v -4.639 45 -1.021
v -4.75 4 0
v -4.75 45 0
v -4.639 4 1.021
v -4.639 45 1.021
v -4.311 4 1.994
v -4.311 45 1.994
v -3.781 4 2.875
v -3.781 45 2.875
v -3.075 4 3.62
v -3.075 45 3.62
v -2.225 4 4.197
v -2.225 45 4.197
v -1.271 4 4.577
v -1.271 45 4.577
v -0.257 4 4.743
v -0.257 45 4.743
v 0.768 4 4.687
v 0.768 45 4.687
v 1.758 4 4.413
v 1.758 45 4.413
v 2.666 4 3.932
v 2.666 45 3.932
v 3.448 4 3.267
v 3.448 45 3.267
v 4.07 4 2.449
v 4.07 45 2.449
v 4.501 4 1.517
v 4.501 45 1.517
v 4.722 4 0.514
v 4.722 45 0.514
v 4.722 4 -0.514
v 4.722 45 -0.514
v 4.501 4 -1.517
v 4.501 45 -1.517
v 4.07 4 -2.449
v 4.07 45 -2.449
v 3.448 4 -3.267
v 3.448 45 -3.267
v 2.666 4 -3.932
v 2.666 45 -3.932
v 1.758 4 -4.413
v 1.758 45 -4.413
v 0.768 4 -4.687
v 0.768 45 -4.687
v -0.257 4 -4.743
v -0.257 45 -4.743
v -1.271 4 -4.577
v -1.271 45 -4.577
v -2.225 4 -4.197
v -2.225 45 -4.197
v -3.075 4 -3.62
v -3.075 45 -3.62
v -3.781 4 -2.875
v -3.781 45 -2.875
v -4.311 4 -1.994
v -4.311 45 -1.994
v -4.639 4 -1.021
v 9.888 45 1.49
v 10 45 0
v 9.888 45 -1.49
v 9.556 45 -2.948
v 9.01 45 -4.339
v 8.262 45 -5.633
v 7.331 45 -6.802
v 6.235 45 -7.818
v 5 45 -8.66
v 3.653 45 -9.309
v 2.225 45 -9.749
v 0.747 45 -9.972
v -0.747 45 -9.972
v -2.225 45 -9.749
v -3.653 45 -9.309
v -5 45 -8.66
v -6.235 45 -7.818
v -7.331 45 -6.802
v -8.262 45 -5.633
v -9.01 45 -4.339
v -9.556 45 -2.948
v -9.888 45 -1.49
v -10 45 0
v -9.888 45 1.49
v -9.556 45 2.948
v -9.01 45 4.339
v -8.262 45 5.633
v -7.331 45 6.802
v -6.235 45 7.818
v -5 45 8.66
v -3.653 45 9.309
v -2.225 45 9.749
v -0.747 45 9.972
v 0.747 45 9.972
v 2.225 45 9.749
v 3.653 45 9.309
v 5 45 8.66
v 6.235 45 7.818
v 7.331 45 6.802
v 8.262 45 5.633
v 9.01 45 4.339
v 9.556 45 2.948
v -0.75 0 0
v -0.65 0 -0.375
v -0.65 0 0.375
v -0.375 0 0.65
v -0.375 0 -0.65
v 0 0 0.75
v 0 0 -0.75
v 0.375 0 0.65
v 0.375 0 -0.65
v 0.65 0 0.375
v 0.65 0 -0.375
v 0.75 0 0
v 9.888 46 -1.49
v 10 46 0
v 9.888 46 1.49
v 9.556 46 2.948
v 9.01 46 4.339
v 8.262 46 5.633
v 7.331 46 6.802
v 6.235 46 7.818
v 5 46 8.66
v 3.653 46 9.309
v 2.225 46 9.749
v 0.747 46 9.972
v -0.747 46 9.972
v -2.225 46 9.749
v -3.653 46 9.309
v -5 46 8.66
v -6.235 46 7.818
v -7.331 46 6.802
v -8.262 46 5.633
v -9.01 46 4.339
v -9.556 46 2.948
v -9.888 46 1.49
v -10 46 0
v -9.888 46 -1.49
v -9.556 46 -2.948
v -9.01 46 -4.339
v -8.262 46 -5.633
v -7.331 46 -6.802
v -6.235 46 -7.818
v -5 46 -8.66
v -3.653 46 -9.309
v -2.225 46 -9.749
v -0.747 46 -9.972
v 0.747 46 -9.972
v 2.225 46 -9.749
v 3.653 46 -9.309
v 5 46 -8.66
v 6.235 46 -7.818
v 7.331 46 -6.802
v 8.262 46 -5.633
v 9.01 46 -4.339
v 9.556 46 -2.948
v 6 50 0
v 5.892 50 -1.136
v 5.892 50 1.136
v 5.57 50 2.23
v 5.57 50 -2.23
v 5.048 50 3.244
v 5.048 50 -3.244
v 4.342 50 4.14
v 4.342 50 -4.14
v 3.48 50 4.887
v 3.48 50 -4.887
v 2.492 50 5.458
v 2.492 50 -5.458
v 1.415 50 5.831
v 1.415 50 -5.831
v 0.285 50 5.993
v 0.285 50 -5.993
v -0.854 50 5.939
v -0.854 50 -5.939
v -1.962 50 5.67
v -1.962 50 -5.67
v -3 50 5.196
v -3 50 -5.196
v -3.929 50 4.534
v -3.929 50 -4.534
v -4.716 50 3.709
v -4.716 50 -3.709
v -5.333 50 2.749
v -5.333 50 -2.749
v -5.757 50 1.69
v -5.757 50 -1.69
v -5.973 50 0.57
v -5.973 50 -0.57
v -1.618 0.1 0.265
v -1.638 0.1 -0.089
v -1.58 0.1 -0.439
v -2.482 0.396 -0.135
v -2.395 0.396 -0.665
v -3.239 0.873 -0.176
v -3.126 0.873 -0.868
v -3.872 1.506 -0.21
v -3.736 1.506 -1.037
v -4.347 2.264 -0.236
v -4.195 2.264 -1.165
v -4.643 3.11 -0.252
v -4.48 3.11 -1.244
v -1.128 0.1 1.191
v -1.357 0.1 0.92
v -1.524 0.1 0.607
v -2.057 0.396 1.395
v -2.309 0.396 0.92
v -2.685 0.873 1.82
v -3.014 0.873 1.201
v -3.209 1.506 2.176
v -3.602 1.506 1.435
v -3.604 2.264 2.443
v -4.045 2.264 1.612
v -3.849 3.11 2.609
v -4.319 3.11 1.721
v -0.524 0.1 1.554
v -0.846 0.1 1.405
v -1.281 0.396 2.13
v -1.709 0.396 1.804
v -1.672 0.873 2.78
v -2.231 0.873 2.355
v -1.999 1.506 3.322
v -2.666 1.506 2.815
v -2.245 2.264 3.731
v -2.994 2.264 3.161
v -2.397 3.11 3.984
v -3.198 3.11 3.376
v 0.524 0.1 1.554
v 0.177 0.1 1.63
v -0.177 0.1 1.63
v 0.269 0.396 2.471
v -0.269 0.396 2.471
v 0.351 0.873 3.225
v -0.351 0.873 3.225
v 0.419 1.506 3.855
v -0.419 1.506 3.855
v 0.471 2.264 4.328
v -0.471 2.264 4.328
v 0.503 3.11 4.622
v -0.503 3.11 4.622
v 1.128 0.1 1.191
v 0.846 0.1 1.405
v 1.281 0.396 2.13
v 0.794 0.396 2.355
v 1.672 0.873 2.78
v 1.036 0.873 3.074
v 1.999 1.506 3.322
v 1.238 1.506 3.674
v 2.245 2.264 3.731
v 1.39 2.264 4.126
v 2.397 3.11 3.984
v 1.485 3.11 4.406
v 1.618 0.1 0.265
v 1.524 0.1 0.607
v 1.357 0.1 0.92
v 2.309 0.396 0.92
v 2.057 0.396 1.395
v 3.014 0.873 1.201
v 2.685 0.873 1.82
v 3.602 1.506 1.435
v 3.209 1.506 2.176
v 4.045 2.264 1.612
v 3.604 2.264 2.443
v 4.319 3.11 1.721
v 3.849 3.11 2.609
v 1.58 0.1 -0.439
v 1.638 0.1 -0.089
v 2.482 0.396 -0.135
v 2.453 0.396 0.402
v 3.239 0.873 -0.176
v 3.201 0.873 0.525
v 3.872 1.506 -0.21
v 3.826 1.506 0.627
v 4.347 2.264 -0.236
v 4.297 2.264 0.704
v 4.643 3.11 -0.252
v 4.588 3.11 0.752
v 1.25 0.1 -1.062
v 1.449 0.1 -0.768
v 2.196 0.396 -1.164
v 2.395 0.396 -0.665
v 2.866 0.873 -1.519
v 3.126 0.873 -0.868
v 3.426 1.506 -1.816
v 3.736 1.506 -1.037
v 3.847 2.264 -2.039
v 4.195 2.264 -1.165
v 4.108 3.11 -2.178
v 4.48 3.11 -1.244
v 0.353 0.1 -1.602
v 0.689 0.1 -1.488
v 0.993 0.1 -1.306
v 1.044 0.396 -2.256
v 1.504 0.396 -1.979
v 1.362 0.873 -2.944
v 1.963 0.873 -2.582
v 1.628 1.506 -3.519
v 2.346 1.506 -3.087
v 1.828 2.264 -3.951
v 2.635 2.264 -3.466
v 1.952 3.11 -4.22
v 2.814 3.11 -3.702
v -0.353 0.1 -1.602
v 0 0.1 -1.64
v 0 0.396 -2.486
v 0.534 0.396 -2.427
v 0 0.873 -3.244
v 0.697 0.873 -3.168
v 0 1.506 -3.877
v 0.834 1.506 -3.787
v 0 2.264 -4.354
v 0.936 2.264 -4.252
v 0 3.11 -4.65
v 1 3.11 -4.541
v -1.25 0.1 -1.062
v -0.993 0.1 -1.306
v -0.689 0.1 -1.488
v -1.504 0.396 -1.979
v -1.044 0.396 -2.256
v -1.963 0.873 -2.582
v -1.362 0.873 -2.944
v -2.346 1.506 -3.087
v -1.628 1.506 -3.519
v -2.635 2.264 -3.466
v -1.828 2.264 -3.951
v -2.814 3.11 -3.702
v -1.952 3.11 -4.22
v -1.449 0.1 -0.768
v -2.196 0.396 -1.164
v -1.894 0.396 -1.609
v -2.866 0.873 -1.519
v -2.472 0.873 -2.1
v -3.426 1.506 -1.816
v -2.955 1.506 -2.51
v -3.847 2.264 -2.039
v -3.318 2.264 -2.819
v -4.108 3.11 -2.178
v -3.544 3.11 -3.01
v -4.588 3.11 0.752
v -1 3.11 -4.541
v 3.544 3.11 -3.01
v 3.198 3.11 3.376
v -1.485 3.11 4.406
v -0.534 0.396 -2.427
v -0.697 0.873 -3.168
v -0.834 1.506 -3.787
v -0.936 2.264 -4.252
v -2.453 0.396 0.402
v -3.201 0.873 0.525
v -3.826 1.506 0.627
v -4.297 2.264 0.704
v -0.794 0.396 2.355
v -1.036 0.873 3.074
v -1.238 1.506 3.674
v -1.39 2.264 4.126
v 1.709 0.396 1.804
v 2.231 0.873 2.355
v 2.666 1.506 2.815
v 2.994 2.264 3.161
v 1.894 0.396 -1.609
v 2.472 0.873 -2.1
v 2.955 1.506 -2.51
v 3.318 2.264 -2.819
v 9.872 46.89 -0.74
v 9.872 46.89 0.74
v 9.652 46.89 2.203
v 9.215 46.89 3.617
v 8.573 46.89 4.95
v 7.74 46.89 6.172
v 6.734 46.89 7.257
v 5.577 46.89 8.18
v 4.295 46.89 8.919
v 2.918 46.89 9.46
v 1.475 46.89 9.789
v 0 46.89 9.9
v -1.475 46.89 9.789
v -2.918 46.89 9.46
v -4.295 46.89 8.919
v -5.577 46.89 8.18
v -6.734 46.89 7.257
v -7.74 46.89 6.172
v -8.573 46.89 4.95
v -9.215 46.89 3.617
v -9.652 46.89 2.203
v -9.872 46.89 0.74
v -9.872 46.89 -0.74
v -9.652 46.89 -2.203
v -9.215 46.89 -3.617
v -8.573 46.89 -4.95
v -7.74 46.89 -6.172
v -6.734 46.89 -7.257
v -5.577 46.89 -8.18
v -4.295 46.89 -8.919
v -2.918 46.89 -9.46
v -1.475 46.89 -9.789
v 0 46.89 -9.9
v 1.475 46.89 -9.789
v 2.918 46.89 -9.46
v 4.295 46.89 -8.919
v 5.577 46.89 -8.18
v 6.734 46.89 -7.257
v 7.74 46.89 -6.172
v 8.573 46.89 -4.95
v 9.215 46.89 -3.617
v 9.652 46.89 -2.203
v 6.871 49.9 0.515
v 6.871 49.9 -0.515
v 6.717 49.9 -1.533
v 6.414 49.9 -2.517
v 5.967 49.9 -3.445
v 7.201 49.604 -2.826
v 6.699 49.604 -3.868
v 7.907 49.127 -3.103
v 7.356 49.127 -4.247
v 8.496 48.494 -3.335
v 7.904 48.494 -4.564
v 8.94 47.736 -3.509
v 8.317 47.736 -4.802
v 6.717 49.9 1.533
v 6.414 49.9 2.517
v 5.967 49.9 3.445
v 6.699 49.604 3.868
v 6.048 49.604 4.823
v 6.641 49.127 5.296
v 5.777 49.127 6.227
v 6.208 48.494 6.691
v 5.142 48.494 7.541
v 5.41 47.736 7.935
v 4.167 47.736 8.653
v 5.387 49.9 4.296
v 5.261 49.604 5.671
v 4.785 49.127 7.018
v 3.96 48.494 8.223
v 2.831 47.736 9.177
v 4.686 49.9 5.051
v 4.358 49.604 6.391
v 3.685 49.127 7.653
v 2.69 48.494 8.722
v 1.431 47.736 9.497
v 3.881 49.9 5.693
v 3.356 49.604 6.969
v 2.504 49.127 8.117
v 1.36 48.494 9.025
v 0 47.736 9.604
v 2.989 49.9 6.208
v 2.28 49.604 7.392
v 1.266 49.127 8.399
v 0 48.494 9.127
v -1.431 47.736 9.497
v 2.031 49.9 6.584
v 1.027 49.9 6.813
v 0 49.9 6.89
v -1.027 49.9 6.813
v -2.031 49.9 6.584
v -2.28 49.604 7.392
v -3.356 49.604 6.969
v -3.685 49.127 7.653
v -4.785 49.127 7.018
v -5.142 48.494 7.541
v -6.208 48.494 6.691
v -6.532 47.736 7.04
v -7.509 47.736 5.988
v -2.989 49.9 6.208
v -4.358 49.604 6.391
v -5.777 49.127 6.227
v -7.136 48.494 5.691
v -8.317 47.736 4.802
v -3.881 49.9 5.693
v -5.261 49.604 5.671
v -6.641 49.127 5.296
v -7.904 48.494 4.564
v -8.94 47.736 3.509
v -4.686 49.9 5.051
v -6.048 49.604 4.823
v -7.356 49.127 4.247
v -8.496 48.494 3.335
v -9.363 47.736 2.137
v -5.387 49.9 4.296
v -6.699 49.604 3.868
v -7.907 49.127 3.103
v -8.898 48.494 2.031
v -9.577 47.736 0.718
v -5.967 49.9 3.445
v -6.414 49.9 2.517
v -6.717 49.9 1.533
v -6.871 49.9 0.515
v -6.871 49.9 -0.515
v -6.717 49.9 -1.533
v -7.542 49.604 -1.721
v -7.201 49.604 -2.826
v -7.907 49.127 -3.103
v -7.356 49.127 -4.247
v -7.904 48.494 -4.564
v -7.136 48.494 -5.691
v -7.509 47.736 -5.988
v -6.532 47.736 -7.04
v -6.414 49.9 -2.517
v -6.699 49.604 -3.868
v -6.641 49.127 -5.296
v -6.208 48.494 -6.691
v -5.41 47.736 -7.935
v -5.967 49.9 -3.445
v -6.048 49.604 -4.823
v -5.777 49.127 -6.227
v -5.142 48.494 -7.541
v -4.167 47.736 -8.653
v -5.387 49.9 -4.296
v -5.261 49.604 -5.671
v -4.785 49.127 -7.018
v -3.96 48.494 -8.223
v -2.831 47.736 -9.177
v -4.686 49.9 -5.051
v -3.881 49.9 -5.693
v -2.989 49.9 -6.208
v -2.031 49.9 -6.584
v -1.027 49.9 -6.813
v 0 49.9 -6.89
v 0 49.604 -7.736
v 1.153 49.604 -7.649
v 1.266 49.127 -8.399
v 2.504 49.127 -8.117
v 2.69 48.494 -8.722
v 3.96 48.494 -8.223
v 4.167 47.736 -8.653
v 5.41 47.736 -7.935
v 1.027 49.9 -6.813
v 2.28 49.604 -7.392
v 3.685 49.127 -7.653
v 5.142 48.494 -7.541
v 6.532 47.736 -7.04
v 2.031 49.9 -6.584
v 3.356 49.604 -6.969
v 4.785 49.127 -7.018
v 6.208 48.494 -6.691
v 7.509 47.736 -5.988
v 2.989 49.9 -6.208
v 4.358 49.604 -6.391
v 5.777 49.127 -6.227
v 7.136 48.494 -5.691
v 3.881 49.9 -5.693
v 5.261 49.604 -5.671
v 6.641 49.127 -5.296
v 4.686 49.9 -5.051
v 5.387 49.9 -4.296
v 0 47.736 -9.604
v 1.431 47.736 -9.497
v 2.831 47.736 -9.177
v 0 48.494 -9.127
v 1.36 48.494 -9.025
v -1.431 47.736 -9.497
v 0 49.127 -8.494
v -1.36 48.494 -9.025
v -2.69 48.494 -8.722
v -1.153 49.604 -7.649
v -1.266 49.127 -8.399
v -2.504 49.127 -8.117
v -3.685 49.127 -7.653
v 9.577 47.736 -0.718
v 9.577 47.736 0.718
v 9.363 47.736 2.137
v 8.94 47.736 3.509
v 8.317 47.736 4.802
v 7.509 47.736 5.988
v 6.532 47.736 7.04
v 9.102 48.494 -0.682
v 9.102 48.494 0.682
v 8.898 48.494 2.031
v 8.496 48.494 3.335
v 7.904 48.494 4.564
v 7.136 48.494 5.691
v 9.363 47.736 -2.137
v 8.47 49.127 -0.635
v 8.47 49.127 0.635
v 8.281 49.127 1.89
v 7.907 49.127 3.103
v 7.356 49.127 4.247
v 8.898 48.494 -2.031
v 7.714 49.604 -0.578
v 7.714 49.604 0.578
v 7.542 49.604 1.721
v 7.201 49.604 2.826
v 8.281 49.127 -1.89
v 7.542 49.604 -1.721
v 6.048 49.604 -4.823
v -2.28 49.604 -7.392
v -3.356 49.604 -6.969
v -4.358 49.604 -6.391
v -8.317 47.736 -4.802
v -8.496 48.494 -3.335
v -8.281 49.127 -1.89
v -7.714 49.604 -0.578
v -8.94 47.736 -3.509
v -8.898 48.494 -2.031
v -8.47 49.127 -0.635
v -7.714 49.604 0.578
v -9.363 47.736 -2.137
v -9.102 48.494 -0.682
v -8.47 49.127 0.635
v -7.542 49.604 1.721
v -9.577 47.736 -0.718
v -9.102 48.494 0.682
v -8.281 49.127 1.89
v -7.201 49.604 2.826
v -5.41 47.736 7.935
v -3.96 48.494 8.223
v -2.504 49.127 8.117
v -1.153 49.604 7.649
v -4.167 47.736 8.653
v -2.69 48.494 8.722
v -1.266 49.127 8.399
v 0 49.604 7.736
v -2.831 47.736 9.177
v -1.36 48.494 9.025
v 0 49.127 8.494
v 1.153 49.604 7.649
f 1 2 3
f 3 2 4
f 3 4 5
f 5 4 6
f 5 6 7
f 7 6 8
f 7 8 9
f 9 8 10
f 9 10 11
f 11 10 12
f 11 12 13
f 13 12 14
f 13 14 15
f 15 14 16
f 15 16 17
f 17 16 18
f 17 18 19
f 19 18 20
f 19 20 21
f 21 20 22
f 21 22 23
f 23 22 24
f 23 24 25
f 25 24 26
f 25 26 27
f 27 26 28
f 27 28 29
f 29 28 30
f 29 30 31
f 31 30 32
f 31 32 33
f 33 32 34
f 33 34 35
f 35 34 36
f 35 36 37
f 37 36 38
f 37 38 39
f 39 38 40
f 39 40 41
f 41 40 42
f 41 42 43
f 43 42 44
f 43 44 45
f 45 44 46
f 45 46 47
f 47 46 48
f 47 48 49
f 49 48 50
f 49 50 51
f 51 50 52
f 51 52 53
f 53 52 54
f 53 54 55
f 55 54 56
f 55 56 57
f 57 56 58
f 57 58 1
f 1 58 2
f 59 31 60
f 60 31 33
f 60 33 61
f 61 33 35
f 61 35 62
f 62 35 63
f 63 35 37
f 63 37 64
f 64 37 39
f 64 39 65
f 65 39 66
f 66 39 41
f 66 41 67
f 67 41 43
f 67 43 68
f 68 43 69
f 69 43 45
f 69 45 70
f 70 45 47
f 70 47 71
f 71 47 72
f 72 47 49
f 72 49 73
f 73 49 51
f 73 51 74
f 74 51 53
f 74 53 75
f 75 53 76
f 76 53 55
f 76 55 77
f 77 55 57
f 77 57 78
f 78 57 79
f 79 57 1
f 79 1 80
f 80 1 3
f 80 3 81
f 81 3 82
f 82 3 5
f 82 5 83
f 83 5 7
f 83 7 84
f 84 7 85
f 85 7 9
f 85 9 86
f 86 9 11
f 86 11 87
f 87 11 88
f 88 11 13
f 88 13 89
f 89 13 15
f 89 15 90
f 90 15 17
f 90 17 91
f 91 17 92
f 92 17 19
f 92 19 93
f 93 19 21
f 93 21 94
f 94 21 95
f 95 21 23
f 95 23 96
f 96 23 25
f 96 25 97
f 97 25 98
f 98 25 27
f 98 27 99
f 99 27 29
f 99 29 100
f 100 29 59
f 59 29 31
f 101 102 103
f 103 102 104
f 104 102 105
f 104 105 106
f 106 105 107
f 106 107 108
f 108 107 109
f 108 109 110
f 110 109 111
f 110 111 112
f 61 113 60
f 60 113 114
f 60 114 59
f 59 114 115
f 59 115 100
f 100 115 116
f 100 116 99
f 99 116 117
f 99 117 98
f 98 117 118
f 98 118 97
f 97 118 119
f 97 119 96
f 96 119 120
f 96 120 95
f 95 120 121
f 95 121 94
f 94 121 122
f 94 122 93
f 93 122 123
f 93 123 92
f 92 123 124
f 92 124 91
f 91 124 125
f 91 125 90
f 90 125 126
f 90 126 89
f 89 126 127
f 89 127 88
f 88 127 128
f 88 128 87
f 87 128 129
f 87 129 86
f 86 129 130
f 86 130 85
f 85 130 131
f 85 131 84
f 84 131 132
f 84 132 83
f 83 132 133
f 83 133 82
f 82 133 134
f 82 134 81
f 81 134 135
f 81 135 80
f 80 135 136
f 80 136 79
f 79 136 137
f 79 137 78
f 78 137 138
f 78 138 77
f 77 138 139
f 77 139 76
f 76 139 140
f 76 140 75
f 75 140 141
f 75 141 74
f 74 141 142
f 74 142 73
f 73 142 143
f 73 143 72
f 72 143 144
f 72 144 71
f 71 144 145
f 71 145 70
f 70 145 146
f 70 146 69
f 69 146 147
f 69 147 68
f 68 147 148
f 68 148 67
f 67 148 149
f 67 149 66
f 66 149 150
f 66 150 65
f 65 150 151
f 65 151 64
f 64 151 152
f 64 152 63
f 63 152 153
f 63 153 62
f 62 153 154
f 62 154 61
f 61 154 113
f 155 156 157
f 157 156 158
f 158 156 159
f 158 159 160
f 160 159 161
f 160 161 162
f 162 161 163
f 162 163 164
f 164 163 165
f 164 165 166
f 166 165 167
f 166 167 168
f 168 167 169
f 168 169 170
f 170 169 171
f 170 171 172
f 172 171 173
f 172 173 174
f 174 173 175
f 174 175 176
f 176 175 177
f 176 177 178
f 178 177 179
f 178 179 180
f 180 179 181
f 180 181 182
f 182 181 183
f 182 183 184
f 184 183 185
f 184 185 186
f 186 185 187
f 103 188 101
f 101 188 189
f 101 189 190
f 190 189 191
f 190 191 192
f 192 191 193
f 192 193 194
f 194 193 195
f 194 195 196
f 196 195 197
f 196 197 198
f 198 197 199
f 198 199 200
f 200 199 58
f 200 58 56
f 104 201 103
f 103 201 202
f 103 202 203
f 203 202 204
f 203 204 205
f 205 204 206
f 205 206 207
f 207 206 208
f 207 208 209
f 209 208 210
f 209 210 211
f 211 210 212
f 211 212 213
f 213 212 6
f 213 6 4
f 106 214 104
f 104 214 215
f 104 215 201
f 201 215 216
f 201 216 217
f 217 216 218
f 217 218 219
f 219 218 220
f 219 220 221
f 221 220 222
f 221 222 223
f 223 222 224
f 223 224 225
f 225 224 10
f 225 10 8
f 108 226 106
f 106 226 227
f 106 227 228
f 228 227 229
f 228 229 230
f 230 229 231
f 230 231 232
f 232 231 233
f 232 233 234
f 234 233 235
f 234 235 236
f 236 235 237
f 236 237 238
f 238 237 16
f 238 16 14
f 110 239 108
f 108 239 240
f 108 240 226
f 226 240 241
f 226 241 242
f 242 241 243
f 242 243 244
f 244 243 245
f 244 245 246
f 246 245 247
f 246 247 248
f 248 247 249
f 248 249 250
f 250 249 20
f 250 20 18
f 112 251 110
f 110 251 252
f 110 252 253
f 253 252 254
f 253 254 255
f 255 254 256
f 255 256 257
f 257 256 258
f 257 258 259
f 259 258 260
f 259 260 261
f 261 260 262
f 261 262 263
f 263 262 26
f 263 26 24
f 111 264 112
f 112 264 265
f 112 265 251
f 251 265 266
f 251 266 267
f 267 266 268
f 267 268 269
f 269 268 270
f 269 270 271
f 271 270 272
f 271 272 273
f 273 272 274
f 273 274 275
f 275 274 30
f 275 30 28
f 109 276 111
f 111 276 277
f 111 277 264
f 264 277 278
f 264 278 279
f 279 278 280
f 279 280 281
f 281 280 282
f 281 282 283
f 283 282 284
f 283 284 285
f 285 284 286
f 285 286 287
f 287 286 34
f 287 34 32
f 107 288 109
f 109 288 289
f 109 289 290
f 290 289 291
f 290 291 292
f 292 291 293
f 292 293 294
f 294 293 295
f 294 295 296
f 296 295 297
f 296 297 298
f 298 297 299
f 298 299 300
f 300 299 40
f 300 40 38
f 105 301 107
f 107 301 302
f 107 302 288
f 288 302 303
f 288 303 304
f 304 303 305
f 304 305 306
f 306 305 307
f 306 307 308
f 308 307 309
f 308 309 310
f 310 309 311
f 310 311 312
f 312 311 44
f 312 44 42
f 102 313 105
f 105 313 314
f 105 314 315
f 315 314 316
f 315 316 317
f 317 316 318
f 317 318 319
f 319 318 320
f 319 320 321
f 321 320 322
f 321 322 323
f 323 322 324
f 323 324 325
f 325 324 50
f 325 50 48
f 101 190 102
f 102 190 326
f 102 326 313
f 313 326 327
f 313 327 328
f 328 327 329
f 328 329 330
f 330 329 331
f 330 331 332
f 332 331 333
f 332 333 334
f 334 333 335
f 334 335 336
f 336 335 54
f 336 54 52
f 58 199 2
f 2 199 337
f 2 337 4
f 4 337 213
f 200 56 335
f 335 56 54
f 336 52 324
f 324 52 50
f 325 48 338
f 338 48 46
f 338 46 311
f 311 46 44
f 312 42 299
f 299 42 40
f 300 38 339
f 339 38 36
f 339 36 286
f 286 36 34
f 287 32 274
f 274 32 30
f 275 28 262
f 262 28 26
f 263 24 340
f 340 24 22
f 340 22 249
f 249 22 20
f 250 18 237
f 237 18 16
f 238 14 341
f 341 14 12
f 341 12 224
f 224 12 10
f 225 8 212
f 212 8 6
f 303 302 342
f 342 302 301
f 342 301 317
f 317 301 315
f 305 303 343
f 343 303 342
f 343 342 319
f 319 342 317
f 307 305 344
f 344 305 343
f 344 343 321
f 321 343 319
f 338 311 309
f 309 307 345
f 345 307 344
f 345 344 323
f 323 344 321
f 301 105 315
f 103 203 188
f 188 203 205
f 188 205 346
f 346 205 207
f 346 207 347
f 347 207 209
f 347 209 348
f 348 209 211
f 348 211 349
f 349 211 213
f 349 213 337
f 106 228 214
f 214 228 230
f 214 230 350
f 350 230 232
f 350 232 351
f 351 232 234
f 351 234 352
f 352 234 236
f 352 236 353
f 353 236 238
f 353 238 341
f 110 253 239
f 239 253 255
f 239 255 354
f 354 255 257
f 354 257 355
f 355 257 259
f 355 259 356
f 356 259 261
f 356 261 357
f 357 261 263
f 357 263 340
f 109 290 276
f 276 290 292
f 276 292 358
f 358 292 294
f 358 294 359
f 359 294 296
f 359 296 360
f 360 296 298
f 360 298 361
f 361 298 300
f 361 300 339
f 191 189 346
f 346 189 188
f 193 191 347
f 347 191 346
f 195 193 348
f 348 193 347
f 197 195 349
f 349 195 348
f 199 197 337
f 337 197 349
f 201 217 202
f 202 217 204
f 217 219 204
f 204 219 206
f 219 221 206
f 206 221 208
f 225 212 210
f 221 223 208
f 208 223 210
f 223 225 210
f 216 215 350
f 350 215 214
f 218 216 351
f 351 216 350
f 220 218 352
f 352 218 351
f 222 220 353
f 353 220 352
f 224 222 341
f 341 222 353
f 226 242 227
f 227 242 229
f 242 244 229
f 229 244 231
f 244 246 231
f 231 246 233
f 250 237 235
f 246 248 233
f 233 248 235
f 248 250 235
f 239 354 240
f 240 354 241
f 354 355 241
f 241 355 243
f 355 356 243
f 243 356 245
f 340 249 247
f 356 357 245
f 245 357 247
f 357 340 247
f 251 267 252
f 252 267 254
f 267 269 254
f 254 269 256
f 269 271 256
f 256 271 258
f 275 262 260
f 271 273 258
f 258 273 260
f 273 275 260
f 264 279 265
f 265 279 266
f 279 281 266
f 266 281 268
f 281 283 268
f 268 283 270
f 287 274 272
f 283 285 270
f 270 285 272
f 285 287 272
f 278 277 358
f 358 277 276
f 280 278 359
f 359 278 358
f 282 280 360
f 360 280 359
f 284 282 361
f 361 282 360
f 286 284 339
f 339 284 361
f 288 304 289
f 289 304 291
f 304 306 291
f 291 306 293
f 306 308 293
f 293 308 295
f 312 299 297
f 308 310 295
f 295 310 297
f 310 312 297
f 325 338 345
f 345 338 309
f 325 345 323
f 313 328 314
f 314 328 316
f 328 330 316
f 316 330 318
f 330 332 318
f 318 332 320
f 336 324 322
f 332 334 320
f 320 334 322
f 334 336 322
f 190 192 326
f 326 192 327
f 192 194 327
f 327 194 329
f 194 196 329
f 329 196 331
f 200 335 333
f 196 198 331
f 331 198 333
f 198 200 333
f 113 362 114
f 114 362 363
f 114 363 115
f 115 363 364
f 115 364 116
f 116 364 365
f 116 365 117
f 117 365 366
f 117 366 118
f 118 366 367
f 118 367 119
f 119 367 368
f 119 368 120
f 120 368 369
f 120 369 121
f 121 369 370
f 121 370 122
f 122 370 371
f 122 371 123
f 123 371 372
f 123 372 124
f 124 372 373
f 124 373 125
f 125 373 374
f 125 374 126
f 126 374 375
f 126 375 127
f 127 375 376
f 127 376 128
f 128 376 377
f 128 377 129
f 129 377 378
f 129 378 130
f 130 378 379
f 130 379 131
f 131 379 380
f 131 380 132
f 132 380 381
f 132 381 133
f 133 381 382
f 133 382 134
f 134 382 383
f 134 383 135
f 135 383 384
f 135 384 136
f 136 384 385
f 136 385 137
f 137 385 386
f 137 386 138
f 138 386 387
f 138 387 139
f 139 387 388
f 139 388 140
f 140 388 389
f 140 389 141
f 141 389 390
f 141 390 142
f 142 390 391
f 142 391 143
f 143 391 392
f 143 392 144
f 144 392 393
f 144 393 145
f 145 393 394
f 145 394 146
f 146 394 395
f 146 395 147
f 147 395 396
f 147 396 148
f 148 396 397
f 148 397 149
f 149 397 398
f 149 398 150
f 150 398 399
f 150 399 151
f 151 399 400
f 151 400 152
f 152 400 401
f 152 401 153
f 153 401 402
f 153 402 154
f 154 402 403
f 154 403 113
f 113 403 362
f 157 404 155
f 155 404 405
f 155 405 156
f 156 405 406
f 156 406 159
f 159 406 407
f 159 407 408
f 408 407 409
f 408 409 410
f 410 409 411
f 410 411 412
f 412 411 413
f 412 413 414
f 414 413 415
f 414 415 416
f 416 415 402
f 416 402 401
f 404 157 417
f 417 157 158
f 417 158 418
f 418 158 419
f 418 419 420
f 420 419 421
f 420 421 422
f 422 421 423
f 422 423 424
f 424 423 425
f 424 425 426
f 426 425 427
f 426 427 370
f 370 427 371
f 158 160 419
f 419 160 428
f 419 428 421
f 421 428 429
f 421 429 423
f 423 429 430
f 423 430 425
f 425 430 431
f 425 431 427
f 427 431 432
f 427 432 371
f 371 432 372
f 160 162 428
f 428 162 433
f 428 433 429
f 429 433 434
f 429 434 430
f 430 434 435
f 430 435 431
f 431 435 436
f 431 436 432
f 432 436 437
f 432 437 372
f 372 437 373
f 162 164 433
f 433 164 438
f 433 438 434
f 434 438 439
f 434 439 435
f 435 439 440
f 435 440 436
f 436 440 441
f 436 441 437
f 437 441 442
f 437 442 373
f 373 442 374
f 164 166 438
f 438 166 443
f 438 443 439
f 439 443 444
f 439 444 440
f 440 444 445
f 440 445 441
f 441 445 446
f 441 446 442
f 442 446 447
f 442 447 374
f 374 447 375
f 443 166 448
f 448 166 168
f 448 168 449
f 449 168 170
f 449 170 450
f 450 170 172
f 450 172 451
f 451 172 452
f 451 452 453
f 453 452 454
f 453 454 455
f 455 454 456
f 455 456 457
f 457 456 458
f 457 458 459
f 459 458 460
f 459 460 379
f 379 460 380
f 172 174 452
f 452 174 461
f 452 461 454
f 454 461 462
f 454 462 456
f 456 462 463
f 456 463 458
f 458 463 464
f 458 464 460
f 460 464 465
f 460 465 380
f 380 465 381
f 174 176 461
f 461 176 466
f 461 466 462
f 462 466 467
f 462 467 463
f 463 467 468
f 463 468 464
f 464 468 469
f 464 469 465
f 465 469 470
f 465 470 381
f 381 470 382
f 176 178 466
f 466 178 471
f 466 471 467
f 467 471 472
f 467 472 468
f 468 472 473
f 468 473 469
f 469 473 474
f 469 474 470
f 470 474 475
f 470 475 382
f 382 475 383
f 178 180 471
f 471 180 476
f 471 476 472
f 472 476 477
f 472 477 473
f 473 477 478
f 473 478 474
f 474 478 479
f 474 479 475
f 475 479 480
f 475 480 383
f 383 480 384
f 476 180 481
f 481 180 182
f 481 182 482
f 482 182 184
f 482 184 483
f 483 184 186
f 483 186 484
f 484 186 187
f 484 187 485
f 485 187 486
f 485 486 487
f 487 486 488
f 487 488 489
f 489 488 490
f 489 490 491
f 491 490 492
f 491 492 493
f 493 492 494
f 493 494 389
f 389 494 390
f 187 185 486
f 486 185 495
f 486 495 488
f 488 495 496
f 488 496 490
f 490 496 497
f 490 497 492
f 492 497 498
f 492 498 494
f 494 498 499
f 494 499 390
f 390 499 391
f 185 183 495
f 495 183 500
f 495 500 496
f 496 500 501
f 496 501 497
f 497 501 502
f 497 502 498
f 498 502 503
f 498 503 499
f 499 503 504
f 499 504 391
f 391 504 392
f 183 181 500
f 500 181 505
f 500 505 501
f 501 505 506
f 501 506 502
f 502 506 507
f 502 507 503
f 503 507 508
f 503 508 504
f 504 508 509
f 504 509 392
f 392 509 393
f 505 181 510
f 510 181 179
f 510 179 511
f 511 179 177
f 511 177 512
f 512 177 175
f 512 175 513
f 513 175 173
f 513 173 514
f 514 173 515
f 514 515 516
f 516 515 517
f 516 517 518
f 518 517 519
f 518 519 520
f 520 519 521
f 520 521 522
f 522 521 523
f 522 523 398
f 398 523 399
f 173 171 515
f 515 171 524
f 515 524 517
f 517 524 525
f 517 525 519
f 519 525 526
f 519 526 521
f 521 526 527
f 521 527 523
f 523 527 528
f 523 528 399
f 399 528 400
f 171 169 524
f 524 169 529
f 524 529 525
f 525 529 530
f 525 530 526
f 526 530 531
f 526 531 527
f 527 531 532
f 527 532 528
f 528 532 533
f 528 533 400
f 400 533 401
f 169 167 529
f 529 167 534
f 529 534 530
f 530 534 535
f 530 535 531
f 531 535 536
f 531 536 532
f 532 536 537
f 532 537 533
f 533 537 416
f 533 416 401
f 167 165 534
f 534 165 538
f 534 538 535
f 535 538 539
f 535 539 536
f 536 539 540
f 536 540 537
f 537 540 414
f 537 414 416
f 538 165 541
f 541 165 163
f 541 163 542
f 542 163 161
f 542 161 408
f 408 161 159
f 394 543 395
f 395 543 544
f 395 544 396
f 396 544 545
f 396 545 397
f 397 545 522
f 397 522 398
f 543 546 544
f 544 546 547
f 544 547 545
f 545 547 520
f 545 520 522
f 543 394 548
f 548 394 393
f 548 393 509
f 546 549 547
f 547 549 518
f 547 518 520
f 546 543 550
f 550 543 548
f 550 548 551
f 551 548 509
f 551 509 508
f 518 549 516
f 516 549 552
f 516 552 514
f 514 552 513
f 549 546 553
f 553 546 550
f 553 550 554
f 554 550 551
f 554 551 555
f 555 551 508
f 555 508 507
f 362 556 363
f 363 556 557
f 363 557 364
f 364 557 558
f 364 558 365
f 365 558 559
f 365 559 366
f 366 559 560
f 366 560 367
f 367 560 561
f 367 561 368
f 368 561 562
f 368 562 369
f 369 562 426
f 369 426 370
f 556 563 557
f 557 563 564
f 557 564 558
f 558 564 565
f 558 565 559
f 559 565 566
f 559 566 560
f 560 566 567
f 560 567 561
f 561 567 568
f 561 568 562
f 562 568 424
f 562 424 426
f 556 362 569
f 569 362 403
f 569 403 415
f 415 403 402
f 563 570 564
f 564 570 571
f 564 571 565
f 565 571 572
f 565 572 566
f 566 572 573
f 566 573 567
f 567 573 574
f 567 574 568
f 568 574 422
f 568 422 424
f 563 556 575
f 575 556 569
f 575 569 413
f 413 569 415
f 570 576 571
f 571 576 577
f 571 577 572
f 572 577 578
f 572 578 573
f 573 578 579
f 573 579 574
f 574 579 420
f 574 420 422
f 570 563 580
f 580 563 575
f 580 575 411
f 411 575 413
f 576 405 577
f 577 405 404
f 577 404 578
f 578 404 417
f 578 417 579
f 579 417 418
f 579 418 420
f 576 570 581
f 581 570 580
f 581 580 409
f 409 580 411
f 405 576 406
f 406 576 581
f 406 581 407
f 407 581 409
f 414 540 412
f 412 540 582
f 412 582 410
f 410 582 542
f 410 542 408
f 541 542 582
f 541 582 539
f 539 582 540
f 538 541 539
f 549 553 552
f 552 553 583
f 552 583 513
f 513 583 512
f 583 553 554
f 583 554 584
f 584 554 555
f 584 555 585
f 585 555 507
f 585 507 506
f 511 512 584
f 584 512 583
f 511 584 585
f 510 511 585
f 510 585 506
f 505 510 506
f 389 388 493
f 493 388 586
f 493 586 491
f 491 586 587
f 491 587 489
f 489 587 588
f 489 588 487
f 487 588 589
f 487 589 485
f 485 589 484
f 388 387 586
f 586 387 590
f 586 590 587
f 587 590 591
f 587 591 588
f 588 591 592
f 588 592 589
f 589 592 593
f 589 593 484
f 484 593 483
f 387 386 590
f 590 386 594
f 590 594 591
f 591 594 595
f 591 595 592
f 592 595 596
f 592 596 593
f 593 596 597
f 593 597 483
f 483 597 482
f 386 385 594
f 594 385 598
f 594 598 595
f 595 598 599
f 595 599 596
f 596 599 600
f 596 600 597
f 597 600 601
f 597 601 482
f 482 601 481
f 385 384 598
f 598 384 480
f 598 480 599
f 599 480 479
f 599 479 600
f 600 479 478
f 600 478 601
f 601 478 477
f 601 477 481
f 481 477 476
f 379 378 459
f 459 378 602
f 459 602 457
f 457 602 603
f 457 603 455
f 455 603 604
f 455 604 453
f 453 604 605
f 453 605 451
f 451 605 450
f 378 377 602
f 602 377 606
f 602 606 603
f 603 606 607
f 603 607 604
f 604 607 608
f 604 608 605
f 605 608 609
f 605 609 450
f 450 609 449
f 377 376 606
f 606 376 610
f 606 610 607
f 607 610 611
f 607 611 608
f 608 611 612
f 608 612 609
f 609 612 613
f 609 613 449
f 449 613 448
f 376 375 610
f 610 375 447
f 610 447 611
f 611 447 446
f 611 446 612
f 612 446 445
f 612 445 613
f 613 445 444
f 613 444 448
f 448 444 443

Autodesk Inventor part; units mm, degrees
ref_plane "YZ Plane" through (0, 0, 0) normal (1, 0, 0) x (0, 1, 0)
ref_plane "XZ Plane" through (0, 0, 0) normal (0, 1, 0) x (-1, 0, 0)
ref_plane "XY Plane" through (0, 0, 0) normal (0, 0, 1) x (1, 0, 0)
sketch "Sketch1" plane through (0, 0, 0) normal (0, 1, 0) x (-1, 0, 0)
  circle A0 centre (0, 0) radius 4.75
  dimension "d0" = 9.5
extrude "Extrusion1" add sketch "Sketch1" along normal blind 45
sketch "Sketch2" plane through (0, 45, 0) normal (0, 1, 0) x (1, 0, 0)
  circle A0 centre (0, 0) radius 10
  dimension "d3" = 20
extrude "Extrusion2" add sketch "Sketch2" along normal blind 5
fillet "Fillet1" radius 4 1 edges at (4.75, 0, 0)
fillet "Fillet2" radius 4 1 edges at (-10, 50, 0)
equation "\"BendRadius\" = Thickness"
equation "\"BendReliefWidth\" = Thickness"
equation "\"BendReliefDepth\" = 0.5 * Thickness"
equation "\"CornerReliefSize\" = 4 * Thickness"
equation "\"MinimumRemnant\" = 2 * Thickness"
equation "\"TransitionRadius\" = BendRadius"
equation "\"JacobiRadiusSize\" = BendRadius"
equation "\"GapSize\" = Thickness"
equation "\"Thickness\" = 0.5"
